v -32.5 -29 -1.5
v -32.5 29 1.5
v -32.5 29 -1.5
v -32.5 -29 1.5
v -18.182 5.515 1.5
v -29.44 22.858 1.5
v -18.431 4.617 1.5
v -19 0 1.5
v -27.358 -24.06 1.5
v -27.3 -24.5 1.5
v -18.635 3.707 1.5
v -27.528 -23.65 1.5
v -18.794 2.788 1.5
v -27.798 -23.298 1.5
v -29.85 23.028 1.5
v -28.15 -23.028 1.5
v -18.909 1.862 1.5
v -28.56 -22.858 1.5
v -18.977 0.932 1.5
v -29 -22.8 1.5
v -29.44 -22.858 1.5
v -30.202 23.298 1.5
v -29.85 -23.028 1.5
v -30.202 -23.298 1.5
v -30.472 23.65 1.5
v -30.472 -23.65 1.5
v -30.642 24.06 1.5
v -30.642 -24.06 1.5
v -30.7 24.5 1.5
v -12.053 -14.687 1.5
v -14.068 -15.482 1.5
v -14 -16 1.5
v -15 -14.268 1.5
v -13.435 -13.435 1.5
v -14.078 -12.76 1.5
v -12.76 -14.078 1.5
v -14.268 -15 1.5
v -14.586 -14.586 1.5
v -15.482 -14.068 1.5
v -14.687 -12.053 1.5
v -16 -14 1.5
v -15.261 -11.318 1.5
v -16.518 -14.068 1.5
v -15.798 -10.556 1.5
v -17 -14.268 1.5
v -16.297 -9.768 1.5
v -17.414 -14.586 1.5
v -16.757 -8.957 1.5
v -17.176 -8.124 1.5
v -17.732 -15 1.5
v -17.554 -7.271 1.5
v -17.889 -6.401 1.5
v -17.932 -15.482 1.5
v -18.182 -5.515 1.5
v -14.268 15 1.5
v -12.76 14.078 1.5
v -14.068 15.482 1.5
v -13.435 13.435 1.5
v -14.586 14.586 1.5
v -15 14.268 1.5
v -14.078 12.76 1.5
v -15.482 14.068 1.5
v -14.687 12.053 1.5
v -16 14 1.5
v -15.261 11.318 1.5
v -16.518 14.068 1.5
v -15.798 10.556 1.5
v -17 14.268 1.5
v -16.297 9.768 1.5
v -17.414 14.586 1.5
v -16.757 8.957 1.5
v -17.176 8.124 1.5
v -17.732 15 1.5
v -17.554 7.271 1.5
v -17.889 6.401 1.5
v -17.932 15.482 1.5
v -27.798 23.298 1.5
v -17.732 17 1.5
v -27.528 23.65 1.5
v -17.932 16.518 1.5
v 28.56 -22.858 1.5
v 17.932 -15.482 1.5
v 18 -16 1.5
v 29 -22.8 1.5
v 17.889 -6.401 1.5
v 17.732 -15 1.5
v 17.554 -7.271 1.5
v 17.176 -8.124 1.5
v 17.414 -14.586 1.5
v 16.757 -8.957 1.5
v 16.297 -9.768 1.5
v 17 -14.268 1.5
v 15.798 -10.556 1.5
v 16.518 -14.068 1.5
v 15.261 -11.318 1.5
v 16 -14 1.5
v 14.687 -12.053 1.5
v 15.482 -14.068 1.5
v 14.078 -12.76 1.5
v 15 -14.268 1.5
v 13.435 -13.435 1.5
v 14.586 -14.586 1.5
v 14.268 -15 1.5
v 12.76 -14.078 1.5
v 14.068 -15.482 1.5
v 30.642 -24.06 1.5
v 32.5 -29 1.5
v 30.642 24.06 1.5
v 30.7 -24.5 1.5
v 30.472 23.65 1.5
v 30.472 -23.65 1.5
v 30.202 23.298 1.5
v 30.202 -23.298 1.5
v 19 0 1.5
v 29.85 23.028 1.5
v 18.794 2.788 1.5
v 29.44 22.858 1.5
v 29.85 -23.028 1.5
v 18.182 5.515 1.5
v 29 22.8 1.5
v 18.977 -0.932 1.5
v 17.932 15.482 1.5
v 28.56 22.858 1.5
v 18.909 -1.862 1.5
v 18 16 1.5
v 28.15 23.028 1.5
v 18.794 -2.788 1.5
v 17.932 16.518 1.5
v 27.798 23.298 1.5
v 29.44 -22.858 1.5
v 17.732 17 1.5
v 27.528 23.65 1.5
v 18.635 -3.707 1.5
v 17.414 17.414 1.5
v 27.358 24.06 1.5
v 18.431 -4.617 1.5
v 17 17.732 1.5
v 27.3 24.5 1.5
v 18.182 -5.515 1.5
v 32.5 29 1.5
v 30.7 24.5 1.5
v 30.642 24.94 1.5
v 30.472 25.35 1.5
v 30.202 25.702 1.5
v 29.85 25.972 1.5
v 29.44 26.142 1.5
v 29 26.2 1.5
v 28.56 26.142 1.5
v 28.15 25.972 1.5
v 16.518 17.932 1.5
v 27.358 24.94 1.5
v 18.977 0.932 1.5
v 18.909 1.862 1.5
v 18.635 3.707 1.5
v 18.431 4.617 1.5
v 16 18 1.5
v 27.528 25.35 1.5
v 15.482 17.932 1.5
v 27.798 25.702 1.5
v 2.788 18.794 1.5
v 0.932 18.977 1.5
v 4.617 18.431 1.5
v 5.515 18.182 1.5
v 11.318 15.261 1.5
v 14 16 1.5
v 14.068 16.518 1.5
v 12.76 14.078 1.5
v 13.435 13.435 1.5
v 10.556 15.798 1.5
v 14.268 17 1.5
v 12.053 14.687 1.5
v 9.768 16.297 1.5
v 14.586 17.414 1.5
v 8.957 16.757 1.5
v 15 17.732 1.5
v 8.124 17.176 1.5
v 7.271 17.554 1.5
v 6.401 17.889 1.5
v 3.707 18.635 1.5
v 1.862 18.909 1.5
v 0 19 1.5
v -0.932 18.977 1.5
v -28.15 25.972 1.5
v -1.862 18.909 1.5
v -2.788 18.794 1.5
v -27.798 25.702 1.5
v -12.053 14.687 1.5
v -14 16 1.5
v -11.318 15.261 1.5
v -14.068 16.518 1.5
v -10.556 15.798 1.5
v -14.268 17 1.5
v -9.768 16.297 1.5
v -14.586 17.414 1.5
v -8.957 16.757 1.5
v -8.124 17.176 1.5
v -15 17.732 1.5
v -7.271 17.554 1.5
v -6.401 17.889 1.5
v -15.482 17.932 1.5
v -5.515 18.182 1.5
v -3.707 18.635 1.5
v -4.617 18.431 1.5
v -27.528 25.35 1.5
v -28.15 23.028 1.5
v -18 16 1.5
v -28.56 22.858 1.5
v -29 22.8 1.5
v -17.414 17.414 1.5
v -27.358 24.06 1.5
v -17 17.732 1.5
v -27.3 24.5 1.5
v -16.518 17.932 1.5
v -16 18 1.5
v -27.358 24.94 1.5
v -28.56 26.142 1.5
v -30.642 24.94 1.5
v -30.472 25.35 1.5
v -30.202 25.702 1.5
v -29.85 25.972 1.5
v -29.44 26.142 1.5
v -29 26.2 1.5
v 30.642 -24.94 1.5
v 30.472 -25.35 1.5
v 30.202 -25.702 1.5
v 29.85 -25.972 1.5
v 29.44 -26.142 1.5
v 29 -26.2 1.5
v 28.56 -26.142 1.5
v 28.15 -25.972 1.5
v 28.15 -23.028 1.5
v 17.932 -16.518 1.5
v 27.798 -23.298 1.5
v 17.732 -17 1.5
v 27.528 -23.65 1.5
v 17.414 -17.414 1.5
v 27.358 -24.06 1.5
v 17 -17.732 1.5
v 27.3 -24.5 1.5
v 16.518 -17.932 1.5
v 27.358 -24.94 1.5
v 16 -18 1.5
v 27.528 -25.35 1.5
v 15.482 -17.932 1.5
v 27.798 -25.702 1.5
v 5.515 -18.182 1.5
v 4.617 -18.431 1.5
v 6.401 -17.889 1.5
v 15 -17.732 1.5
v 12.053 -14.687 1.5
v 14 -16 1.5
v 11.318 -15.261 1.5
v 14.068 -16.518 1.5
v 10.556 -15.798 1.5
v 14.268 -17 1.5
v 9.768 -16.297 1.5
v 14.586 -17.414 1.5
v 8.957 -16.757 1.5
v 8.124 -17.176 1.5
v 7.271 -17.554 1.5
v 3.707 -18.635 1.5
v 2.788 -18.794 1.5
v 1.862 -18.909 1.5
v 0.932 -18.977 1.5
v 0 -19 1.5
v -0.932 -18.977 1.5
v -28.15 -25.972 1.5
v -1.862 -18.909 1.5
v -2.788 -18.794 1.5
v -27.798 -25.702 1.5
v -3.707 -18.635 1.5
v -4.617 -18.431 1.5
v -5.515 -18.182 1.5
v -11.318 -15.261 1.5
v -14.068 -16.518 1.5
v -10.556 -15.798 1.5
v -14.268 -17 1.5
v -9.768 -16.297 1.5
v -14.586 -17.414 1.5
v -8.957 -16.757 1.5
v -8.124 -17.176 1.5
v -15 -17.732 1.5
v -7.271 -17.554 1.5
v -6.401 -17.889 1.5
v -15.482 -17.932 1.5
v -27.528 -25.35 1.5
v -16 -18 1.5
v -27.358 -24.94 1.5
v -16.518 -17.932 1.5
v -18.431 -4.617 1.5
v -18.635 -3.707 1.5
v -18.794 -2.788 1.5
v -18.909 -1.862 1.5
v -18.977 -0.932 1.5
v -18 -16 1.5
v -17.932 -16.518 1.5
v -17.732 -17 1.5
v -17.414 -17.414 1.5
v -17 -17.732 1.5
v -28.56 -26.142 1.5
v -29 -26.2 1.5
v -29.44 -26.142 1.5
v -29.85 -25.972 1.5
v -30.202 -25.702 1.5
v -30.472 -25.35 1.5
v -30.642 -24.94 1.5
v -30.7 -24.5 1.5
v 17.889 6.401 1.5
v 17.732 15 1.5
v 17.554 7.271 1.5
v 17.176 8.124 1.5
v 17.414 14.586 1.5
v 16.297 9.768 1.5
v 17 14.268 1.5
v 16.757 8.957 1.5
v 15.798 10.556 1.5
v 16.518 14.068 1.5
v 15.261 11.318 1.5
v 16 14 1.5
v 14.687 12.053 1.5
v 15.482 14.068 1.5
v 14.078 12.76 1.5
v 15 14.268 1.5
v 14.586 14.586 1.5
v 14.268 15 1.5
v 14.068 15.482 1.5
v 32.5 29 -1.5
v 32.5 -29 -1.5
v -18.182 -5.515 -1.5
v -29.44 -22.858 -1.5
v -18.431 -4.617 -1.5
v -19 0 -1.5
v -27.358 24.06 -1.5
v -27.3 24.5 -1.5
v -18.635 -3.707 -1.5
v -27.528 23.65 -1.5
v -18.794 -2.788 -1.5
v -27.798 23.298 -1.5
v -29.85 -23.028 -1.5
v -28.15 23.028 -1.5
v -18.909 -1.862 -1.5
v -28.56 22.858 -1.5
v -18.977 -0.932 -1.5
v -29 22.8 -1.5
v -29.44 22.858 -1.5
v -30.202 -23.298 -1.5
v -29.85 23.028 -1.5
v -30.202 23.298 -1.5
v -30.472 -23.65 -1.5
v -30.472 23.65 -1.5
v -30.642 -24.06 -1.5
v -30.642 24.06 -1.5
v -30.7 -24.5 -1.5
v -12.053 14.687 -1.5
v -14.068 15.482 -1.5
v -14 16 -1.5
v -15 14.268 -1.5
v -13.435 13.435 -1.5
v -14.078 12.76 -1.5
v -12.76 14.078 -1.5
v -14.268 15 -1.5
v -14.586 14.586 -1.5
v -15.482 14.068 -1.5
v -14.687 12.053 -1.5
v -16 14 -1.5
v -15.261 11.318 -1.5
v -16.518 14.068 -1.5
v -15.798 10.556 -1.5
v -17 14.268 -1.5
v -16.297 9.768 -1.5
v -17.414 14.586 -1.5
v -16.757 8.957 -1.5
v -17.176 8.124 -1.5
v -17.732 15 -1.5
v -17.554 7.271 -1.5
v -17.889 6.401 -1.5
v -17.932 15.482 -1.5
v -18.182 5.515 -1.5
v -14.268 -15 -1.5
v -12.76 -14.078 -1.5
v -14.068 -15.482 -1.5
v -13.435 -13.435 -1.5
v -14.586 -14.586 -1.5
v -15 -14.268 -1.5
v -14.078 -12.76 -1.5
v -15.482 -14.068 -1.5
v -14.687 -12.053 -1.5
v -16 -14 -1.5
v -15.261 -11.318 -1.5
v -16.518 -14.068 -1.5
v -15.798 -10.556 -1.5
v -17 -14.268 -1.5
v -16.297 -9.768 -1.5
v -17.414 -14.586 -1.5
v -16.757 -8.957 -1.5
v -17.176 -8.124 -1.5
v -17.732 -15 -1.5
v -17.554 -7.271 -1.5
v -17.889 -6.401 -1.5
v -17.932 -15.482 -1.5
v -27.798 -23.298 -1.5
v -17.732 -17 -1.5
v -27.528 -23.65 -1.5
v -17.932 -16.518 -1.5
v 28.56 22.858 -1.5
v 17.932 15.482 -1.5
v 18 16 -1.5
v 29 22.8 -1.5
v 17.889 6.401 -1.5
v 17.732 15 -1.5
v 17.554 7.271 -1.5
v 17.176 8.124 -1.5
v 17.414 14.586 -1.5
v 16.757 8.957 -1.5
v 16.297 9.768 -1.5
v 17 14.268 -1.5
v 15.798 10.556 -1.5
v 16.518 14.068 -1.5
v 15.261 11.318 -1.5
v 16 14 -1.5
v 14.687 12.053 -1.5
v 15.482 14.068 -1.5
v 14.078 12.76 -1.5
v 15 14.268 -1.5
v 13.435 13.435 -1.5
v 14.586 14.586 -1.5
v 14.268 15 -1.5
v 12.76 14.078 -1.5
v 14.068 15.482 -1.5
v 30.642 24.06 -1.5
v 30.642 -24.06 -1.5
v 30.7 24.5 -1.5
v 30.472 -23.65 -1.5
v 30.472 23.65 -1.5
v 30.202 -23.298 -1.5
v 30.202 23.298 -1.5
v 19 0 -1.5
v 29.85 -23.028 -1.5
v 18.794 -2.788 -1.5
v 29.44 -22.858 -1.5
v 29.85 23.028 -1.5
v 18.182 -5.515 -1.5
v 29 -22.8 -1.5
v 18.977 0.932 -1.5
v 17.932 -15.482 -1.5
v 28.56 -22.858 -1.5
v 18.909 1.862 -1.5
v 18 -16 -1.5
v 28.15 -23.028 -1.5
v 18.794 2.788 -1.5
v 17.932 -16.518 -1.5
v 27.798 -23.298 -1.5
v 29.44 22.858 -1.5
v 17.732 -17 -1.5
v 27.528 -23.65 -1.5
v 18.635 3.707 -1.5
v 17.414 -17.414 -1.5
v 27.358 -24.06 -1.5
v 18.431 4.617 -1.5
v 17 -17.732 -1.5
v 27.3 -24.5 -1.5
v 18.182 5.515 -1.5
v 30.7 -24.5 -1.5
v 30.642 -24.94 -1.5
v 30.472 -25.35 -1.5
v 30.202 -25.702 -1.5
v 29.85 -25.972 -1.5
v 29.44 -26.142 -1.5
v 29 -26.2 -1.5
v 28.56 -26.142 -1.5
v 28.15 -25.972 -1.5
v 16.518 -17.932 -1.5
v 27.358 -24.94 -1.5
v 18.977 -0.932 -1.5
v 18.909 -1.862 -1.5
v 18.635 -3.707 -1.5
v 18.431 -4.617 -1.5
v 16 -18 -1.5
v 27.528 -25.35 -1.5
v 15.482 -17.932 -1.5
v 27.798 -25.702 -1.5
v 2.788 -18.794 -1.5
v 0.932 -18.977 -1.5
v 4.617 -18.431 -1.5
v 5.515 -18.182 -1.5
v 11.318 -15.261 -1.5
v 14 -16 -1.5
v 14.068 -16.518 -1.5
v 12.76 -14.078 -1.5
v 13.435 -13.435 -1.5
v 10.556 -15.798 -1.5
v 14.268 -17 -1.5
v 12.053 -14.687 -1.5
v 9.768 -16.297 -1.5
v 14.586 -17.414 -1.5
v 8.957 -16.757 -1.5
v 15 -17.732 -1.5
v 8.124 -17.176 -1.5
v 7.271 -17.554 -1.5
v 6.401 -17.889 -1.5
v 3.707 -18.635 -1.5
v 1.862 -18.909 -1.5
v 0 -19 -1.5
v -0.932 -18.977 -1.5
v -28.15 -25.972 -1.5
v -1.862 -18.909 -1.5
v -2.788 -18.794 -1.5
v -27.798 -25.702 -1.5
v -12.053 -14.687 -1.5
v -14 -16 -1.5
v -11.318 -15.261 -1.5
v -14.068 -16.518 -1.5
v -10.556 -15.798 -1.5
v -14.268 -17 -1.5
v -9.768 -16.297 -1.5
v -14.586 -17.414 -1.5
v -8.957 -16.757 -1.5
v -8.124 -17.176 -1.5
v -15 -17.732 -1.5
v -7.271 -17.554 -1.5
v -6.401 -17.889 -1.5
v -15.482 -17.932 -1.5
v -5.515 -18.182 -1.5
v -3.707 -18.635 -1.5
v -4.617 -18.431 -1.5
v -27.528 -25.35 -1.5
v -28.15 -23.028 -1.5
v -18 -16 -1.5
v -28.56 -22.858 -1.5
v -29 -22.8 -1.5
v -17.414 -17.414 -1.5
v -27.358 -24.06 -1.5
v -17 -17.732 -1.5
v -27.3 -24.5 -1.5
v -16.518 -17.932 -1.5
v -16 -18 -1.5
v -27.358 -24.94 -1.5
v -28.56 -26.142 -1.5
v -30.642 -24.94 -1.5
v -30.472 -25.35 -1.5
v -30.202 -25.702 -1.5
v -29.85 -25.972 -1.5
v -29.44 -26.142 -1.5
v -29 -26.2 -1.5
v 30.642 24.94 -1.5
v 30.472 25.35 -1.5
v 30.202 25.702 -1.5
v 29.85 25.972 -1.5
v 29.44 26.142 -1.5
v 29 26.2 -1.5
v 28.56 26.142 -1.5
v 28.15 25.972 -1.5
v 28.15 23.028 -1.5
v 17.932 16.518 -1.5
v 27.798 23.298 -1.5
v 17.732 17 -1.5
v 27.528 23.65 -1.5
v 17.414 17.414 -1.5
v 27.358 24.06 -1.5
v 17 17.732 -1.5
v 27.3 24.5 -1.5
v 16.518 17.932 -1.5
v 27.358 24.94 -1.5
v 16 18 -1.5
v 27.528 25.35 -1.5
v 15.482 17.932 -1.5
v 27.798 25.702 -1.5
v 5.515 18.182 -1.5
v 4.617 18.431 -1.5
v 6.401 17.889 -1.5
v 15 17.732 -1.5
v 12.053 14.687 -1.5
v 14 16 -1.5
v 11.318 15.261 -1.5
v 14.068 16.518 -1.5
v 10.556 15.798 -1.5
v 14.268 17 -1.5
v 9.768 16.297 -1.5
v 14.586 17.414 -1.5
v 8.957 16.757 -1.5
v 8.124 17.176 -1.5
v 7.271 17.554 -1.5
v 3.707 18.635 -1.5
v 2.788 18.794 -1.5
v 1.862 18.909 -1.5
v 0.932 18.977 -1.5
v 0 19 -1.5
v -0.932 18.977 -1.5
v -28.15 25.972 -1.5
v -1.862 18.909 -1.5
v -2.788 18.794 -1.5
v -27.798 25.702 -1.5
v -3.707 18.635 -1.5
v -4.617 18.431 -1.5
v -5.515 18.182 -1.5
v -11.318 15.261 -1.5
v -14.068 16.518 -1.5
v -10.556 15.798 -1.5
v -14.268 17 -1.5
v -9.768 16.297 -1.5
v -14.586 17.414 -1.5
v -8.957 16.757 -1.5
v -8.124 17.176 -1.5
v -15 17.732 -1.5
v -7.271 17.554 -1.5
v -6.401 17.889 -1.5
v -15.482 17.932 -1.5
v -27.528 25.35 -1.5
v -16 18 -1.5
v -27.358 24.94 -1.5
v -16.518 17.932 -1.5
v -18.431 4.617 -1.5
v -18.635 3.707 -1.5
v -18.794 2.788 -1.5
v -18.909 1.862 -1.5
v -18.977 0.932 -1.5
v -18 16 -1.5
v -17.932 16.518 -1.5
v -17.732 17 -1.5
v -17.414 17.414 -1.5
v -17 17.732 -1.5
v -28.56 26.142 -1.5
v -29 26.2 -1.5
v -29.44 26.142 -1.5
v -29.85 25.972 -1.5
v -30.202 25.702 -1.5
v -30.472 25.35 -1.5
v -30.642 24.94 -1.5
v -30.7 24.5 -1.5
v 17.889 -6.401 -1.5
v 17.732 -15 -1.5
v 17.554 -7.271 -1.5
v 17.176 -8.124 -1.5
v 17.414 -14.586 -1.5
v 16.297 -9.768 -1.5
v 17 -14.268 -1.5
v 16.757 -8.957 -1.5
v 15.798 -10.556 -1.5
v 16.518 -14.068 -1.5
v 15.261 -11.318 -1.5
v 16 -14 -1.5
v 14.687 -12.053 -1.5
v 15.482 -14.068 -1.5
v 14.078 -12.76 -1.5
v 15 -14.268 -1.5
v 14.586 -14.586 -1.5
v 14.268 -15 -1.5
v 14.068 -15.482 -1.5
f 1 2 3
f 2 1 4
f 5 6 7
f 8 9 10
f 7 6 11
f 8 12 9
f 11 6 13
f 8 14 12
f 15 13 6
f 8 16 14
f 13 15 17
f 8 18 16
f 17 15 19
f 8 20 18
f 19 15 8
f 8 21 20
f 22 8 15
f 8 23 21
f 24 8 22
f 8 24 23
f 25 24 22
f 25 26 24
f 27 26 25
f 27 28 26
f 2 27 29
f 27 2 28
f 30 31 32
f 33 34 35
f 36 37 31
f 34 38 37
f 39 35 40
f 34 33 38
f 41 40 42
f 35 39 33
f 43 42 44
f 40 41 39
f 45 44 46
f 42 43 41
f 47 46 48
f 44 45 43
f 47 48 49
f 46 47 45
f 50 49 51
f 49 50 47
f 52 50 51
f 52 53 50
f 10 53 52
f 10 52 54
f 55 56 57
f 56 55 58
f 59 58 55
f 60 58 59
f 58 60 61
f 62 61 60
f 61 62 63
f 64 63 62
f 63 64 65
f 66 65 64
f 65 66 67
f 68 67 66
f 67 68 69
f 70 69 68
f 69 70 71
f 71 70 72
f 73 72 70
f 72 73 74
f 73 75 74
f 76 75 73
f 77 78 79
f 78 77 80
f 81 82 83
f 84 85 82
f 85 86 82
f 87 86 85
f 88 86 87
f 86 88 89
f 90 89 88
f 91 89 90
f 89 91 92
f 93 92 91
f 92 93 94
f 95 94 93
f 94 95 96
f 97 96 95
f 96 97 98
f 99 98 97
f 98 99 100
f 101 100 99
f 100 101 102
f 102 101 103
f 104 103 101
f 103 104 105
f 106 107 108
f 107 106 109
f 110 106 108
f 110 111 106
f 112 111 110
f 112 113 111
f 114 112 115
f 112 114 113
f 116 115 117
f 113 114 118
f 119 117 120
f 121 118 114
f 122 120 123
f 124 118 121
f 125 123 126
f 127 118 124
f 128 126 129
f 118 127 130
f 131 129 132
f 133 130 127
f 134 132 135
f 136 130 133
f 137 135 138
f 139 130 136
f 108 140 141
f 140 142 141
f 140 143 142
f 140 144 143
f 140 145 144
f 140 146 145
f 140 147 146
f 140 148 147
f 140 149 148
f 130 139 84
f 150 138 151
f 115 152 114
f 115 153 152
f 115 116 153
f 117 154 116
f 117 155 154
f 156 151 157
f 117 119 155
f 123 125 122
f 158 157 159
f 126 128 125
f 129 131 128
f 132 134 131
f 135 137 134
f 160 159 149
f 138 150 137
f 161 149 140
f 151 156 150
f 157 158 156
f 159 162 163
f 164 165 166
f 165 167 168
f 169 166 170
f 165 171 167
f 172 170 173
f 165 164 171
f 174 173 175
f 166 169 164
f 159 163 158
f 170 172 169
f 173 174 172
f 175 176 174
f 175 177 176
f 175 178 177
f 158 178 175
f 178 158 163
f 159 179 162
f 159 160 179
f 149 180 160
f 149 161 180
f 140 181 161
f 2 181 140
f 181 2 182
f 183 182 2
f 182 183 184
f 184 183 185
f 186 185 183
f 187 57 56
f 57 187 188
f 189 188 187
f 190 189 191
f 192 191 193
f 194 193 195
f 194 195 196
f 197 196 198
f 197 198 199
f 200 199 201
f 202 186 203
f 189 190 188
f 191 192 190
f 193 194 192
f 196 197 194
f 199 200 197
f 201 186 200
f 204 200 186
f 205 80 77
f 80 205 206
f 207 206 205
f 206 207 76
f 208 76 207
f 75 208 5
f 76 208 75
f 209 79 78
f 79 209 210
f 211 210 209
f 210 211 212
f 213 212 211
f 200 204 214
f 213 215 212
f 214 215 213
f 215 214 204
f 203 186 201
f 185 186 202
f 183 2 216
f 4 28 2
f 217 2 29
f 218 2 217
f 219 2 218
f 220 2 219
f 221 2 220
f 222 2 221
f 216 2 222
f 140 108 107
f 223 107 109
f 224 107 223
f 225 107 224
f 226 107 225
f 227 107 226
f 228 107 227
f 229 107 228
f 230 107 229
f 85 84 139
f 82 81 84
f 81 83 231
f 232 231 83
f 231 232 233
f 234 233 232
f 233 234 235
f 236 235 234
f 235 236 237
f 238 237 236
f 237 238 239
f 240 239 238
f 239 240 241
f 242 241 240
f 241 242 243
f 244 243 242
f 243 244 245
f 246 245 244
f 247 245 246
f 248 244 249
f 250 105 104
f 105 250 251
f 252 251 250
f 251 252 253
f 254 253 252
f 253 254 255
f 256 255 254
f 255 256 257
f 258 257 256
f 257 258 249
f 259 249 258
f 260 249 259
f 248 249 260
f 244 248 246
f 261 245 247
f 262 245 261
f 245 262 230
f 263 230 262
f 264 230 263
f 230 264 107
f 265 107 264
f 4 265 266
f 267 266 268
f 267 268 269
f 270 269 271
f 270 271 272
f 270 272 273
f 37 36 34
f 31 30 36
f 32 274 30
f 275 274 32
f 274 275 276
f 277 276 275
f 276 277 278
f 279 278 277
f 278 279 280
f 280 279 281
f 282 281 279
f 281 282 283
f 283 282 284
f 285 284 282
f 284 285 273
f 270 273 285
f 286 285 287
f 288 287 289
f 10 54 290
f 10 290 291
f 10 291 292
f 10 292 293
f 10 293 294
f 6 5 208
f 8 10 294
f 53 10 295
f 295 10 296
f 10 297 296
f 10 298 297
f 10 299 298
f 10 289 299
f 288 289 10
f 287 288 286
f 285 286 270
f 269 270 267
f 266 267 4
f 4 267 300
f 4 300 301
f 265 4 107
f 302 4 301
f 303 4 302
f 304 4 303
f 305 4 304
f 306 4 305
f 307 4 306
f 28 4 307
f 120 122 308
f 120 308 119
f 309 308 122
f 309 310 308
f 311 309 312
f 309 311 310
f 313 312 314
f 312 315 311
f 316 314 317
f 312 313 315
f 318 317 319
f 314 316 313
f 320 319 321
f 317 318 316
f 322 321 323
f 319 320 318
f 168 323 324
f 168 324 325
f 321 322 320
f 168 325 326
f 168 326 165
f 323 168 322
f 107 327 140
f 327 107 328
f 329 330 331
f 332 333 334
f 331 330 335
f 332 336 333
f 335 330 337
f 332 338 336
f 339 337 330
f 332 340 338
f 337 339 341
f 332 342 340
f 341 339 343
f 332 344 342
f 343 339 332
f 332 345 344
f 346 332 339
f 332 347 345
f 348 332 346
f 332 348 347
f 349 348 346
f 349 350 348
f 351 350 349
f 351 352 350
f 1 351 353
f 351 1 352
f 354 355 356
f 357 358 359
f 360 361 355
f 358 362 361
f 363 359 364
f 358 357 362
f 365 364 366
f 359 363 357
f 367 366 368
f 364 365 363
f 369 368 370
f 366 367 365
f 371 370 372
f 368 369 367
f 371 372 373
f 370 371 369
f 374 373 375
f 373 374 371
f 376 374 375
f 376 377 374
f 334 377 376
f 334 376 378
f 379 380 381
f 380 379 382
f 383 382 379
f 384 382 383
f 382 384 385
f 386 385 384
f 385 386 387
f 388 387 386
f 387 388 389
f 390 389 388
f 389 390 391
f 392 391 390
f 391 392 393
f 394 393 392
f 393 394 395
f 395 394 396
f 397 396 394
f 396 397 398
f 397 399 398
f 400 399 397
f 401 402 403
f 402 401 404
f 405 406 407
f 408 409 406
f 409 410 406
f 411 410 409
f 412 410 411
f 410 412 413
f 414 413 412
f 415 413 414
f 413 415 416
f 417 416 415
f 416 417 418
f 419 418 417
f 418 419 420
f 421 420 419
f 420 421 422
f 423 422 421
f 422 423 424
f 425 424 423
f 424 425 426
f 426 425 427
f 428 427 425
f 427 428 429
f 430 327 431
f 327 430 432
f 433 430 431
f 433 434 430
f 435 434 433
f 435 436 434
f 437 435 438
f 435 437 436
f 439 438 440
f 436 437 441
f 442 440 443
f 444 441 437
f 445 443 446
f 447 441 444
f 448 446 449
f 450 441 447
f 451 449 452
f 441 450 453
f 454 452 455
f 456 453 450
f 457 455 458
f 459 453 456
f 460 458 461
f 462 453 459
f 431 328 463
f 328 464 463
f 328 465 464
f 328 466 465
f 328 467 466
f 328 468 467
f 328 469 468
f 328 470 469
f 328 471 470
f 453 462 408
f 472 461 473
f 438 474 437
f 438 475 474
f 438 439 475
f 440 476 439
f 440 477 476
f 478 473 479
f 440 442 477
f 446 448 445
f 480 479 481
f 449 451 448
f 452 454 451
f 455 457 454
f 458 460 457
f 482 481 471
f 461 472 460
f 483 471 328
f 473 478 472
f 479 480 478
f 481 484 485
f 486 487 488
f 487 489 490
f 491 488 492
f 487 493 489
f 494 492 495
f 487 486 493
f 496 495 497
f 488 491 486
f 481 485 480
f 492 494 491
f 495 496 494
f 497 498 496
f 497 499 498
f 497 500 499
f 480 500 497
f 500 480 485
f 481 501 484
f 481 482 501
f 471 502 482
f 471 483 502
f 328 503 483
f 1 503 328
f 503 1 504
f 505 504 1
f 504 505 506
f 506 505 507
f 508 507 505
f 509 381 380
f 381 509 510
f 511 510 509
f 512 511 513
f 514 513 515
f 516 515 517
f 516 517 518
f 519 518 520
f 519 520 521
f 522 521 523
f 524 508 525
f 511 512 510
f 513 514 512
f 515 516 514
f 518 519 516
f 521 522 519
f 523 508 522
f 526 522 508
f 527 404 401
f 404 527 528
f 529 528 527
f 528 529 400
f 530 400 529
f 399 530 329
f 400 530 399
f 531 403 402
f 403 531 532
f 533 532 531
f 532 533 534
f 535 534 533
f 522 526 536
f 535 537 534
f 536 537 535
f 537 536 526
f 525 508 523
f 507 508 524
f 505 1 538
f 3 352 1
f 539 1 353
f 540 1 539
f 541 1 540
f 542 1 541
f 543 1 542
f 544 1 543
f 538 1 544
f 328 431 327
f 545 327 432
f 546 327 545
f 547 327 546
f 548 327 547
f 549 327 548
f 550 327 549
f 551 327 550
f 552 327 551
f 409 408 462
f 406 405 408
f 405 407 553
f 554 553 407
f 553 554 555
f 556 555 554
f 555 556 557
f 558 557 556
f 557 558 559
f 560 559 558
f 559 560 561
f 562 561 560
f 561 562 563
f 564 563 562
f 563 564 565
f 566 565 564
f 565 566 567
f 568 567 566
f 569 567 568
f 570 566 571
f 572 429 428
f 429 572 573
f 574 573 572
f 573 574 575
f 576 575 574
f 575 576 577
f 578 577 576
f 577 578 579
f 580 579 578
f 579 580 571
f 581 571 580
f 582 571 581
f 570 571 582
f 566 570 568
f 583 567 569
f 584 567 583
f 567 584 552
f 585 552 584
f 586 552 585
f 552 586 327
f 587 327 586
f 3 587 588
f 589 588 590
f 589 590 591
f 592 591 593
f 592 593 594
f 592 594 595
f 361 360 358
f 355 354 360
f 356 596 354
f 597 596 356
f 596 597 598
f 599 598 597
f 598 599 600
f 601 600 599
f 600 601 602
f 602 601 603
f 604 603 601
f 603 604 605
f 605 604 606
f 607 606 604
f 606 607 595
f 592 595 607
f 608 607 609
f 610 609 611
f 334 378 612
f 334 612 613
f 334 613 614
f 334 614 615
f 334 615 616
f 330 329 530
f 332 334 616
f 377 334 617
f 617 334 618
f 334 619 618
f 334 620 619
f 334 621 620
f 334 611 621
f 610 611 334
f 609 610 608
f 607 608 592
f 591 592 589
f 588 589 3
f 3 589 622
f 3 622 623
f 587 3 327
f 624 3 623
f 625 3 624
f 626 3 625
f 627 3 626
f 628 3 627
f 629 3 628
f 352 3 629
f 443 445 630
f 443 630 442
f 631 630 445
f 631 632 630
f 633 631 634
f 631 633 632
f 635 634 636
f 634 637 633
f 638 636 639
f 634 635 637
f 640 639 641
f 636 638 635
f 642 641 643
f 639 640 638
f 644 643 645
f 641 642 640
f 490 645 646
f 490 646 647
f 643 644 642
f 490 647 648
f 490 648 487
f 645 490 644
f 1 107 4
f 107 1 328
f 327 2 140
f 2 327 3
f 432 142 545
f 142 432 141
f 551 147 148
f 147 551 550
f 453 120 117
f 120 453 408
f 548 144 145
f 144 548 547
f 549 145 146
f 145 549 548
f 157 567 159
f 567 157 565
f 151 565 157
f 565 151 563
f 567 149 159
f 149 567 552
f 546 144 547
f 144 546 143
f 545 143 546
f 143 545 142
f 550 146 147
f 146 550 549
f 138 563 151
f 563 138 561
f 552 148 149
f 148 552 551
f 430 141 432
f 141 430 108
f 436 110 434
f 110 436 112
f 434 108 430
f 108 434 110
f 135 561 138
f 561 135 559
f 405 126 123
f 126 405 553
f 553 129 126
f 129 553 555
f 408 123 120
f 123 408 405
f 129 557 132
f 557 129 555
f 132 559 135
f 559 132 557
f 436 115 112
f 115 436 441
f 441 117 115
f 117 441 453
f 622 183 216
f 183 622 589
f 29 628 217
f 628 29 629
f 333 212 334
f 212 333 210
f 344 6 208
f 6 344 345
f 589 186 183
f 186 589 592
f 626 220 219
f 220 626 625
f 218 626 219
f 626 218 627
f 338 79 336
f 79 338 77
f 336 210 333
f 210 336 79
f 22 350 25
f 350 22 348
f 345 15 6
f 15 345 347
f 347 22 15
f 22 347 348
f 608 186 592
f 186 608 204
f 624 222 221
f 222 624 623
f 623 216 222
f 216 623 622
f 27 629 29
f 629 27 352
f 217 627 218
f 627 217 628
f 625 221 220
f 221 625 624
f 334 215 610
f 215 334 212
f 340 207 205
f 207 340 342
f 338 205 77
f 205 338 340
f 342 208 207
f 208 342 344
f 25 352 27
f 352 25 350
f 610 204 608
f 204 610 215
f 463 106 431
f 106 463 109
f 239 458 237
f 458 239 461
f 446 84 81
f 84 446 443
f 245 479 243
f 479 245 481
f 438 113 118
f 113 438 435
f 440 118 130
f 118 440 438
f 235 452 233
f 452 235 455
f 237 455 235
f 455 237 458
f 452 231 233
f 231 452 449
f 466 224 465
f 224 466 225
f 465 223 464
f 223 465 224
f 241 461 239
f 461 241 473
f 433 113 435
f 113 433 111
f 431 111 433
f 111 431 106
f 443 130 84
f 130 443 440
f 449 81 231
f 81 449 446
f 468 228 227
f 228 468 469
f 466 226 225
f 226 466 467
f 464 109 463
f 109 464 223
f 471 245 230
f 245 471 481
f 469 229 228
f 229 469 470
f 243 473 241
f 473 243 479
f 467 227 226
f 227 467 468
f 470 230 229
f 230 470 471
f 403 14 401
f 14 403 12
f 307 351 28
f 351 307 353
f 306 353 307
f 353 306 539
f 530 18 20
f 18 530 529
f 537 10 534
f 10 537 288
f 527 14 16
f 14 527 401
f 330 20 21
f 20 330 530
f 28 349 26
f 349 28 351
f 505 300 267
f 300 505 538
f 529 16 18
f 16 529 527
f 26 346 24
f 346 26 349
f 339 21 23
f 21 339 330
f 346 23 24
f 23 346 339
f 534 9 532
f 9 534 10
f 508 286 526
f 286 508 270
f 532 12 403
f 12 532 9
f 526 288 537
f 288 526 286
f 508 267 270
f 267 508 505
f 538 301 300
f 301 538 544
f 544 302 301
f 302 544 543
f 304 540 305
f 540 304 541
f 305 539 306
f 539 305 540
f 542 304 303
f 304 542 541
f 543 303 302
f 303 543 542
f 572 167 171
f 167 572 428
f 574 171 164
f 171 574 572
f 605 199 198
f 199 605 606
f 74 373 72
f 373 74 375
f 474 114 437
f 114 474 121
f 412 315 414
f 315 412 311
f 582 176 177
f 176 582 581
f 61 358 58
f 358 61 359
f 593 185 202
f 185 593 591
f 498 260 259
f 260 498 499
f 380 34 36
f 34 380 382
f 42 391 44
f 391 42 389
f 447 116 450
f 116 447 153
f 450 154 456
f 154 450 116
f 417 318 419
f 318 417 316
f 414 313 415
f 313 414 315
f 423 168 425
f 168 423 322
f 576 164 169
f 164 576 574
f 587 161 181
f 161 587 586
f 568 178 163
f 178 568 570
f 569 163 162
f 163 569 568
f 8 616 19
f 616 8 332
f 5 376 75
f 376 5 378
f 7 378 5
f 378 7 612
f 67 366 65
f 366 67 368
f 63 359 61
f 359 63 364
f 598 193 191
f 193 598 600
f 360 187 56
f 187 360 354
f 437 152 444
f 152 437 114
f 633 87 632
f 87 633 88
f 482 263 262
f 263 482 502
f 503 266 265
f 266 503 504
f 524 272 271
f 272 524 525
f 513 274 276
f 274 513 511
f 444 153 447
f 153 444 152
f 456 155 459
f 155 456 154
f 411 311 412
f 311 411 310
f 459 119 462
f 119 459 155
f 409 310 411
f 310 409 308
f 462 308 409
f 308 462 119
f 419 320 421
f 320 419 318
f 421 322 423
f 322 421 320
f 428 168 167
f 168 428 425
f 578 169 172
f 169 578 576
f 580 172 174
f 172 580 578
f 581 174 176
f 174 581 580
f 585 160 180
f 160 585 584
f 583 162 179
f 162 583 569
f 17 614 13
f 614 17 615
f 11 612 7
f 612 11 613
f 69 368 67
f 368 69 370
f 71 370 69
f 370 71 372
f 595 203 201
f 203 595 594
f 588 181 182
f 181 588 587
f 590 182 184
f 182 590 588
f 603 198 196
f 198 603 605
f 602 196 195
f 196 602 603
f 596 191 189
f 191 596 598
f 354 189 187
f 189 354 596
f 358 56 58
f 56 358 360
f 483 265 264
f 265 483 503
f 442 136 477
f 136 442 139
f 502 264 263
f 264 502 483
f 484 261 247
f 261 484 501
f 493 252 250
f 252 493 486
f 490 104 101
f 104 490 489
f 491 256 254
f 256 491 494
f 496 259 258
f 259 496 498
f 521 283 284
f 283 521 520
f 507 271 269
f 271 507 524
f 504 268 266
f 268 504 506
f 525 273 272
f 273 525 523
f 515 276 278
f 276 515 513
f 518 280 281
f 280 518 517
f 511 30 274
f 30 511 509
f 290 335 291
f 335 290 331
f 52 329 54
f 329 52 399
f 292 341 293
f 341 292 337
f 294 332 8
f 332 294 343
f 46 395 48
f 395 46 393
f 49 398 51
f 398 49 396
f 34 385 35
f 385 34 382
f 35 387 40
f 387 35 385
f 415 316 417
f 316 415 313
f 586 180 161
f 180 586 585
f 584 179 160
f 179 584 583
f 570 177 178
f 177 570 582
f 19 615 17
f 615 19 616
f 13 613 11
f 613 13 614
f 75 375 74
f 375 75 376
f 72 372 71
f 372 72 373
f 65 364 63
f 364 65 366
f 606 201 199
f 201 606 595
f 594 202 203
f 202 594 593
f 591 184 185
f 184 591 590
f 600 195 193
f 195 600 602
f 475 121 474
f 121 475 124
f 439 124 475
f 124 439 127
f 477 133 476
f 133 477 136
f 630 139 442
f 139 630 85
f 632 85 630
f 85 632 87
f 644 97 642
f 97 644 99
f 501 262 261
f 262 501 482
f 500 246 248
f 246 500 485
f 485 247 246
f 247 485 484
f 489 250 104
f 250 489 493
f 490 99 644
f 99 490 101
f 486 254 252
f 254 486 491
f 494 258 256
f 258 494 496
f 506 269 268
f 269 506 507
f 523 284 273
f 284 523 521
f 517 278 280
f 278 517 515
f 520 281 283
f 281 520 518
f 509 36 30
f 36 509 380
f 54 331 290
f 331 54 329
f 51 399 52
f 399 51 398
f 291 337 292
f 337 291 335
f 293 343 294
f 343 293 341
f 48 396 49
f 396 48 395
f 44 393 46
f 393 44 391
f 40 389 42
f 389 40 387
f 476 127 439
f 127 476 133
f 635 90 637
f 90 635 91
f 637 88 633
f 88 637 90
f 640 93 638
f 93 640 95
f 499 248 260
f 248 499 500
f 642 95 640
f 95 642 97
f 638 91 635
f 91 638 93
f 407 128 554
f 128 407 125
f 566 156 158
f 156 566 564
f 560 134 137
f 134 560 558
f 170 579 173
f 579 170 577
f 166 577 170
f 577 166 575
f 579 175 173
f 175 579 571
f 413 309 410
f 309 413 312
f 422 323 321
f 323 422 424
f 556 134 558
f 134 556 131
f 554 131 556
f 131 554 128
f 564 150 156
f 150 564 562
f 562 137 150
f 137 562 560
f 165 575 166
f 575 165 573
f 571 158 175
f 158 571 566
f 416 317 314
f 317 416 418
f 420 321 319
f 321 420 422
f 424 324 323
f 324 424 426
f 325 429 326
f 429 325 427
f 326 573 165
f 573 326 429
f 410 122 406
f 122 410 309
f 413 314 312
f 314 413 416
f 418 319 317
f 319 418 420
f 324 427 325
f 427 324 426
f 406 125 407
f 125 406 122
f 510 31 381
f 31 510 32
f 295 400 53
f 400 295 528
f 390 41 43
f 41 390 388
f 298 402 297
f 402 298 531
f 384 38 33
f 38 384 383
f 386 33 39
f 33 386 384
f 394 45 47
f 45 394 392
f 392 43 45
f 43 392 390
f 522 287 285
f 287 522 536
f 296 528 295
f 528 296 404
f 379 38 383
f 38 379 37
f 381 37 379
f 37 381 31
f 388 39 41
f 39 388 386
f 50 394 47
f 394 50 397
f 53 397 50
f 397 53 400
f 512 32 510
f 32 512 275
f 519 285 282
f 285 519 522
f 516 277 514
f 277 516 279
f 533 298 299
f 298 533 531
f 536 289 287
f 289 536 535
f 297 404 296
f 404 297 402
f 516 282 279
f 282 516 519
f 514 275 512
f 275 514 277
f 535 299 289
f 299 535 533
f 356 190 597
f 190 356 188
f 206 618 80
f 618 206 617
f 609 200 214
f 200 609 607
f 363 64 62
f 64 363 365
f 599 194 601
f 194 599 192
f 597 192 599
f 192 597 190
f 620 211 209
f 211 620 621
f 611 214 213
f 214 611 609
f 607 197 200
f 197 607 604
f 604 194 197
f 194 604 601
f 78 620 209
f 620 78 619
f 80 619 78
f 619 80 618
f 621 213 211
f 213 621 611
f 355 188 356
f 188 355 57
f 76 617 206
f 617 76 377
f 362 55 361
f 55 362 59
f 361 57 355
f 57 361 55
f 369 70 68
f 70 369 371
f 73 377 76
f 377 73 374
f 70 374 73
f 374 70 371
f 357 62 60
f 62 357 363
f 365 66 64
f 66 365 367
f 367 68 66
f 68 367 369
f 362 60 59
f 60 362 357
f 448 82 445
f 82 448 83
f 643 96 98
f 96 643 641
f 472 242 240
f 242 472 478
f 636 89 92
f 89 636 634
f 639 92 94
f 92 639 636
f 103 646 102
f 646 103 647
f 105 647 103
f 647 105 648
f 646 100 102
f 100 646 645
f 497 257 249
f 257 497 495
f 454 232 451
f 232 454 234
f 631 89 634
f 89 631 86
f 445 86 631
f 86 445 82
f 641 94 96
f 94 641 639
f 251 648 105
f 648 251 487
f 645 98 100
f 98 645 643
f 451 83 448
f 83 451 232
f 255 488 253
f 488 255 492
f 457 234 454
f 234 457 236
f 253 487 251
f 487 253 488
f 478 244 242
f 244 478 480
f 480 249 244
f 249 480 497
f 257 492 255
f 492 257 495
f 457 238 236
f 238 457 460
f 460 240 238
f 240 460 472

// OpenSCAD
difference() {
cube([65,58,3], center = true);

//Pi 3B/4/5 holes  
    translate([29,24.5,0])rotate([0,0,0])   cylinder(h=10, r1=1.7, r2=1.7, center=true,$fn=24);
    translate([-29,24.5,0])rotate([0,0,0])   cylinder(h=5.2, r1=1.7, r2=1.7, center=true,$fn=24);
    translate([29,-24.5,0])rotate([0,0,0])   cylinder(h=5.2, r1=1.7, r2=1.7, center=true,$fn=24);
    translate([-29,-24.5,0])rotate([0,0,0])   cylinder(h=5.2, r1=1.7, r2=1.7, center=true,$fn=24);
    
//Centre fan hole
    cylinder(h=10, r1=19, r2=19, center=true,$fn=128);
    
//Fan mount holes
    translate([16,16,0])rotate([0,0,0])   cylinder(h=10, r1=2, r2=2, center=true,$fn=24);
    translate([-16,-16,0])rotate([0,0,0])   cylinder(h=10, r1=2, r2=2, center=true,$fn=24);
    translate([-16,16,0])rotate([0,0,0])   cylinder(h=10, r1=2, r2=2, center=true,$fn=24);
    translate([16,-16,0])rotate([0,0,0])   cylinder(h=10, r1=2, r2=2, center=true,$fn=24);
}
